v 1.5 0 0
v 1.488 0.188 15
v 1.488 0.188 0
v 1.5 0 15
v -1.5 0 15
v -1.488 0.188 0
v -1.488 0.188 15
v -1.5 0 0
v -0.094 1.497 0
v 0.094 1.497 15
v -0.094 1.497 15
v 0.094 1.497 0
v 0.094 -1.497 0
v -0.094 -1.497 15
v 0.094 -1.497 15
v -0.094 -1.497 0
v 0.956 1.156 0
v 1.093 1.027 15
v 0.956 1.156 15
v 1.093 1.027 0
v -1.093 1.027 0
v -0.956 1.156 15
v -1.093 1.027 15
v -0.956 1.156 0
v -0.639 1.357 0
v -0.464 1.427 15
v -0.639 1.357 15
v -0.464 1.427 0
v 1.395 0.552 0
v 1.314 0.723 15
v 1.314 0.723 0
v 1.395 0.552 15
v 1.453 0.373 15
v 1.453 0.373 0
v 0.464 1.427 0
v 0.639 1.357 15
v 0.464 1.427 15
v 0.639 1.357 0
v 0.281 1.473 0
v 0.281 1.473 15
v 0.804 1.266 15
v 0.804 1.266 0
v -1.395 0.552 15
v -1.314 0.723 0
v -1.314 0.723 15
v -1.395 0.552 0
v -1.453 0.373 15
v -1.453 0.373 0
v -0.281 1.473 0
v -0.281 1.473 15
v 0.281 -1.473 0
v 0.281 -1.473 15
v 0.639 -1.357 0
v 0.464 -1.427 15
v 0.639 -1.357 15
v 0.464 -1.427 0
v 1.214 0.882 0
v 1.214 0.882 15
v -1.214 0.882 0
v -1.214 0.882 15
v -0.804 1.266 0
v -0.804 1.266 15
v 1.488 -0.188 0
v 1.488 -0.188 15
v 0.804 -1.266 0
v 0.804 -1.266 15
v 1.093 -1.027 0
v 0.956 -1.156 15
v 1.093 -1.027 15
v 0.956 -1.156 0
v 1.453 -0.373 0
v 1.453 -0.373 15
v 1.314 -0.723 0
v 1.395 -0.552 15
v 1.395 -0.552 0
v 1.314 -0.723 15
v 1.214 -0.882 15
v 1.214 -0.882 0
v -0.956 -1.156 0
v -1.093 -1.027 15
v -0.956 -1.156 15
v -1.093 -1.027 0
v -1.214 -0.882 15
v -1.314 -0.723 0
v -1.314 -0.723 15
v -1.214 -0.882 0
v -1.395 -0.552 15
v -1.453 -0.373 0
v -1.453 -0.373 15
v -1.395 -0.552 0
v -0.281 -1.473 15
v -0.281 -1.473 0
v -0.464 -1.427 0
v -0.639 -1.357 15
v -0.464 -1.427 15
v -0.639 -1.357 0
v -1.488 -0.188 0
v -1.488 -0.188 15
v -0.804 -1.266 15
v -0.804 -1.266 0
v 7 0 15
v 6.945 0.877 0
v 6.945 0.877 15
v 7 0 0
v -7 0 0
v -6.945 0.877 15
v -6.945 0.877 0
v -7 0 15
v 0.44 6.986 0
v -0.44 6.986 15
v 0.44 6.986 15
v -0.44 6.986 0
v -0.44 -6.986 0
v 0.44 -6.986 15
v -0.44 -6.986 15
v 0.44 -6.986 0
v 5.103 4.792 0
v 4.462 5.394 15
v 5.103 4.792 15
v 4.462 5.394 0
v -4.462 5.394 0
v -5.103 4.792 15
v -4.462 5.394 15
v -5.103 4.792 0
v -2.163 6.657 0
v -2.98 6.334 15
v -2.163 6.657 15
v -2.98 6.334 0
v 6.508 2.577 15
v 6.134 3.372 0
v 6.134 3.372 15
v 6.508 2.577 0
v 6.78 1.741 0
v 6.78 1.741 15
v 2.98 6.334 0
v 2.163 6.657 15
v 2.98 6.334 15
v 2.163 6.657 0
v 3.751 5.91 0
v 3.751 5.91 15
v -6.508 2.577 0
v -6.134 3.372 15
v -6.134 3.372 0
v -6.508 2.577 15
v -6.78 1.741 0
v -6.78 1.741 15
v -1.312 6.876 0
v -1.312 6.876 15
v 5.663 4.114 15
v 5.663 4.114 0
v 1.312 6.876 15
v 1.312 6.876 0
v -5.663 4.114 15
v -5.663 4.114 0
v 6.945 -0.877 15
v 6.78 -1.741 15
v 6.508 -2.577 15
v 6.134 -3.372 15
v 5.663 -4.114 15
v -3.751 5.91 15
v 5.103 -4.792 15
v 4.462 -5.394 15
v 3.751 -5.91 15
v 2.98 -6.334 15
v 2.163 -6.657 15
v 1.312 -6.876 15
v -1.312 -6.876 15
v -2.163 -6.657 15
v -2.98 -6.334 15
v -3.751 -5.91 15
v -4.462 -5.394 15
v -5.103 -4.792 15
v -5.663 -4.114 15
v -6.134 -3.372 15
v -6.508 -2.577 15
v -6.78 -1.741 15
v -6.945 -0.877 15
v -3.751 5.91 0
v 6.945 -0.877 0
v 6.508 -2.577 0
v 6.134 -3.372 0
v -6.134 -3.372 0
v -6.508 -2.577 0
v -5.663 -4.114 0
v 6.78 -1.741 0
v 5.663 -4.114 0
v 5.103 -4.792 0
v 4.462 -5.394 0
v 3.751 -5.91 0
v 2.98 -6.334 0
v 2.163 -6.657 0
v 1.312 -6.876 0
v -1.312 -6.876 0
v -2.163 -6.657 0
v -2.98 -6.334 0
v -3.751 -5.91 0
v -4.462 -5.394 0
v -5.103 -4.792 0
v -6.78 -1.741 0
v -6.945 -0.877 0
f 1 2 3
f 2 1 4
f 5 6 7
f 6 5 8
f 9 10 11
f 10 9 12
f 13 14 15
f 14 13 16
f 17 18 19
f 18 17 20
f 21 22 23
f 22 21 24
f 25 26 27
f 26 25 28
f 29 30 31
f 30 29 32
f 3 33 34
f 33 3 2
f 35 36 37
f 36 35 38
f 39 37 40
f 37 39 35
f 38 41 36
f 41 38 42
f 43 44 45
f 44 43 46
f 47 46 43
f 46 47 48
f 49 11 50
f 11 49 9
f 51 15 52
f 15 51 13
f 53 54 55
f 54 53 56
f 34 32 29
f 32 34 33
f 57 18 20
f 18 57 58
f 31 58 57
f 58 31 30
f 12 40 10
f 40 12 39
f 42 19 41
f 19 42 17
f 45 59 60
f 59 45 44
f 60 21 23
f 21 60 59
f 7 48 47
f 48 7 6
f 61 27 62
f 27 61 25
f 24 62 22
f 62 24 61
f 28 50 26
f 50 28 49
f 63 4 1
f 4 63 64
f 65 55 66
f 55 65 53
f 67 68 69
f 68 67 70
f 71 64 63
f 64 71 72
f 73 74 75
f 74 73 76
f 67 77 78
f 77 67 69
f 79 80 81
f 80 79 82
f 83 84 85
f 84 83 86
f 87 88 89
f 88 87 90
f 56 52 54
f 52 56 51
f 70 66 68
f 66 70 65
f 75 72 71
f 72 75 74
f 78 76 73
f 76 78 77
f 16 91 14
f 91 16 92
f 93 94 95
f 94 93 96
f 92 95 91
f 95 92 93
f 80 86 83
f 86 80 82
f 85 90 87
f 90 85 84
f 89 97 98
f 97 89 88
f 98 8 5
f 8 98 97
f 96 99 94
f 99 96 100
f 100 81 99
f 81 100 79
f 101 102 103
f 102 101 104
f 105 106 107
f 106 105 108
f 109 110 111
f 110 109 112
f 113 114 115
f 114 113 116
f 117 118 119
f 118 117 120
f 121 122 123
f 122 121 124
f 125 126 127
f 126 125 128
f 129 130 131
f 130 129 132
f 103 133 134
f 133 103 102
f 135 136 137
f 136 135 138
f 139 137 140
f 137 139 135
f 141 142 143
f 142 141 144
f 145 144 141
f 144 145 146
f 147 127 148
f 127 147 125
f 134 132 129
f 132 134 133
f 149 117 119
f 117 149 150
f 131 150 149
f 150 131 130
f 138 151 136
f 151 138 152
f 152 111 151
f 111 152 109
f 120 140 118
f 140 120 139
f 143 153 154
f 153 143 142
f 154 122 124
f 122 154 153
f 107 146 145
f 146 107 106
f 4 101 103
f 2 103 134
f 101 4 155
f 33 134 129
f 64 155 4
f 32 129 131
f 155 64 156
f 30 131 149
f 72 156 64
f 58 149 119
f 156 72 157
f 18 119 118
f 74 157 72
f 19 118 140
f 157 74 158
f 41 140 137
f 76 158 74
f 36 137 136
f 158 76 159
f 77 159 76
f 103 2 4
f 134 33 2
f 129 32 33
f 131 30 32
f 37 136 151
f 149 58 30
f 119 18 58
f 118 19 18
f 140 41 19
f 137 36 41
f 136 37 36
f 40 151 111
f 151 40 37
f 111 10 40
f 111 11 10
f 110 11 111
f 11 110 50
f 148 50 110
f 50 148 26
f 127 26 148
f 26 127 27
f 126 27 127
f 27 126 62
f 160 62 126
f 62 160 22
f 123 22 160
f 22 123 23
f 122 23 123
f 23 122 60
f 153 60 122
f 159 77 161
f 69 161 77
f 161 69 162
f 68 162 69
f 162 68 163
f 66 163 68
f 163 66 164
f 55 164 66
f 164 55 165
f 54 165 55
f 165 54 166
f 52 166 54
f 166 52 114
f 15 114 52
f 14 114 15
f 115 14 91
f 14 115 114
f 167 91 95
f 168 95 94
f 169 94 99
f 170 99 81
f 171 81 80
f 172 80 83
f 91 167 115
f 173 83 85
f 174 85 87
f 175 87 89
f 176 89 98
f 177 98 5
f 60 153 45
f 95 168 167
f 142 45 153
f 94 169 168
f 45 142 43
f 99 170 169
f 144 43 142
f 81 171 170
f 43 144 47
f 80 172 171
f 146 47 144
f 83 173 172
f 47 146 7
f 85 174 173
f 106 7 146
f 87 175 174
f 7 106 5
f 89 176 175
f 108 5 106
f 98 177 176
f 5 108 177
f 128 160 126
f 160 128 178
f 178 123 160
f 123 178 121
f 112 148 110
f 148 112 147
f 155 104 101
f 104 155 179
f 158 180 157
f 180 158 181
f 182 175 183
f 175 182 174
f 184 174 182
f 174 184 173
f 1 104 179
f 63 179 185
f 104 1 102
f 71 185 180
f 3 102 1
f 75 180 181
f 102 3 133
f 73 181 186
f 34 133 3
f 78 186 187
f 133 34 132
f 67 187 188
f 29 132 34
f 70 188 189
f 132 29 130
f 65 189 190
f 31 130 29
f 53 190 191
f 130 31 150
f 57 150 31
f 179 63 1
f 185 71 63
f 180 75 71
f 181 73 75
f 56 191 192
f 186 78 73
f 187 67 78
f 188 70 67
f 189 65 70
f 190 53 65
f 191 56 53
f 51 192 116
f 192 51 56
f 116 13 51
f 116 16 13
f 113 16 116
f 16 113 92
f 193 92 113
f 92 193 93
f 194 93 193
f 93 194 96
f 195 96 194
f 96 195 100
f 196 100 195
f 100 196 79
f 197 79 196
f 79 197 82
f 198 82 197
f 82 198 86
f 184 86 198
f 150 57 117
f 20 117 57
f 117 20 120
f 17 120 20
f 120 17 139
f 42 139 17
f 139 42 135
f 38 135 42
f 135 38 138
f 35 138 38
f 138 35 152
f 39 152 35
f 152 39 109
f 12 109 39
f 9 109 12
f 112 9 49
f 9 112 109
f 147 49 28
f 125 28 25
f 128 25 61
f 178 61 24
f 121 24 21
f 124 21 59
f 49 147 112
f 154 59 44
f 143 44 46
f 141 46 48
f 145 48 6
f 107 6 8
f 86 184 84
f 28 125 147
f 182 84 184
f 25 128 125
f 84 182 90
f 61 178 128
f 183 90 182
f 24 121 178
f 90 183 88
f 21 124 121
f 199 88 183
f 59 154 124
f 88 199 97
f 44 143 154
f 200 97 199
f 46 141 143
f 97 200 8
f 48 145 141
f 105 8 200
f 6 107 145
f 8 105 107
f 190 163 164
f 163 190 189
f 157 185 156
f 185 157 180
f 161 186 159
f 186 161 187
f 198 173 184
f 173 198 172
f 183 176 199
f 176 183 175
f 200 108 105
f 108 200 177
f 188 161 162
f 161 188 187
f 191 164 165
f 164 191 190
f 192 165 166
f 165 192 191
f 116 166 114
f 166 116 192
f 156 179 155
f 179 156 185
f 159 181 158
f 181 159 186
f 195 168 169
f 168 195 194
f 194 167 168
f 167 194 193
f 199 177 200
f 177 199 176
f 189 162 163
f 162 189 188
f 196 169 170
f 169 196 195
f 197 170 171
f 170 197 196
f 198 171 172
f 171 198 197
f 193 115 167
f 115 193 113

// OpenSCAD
$fn = 50;


difference() {
	union() {
		cylinder(h = 15, r = 7.0000000000);
	}
	union() {
		translate(v = [0, 0, -100]) {
			cylinder(h = 200, r = 1.5000000000);
		}
		translate(v = [0, 0, -100]) {
			cylinder(h = 200, r = 1.5000000000);
		}
	}
}
